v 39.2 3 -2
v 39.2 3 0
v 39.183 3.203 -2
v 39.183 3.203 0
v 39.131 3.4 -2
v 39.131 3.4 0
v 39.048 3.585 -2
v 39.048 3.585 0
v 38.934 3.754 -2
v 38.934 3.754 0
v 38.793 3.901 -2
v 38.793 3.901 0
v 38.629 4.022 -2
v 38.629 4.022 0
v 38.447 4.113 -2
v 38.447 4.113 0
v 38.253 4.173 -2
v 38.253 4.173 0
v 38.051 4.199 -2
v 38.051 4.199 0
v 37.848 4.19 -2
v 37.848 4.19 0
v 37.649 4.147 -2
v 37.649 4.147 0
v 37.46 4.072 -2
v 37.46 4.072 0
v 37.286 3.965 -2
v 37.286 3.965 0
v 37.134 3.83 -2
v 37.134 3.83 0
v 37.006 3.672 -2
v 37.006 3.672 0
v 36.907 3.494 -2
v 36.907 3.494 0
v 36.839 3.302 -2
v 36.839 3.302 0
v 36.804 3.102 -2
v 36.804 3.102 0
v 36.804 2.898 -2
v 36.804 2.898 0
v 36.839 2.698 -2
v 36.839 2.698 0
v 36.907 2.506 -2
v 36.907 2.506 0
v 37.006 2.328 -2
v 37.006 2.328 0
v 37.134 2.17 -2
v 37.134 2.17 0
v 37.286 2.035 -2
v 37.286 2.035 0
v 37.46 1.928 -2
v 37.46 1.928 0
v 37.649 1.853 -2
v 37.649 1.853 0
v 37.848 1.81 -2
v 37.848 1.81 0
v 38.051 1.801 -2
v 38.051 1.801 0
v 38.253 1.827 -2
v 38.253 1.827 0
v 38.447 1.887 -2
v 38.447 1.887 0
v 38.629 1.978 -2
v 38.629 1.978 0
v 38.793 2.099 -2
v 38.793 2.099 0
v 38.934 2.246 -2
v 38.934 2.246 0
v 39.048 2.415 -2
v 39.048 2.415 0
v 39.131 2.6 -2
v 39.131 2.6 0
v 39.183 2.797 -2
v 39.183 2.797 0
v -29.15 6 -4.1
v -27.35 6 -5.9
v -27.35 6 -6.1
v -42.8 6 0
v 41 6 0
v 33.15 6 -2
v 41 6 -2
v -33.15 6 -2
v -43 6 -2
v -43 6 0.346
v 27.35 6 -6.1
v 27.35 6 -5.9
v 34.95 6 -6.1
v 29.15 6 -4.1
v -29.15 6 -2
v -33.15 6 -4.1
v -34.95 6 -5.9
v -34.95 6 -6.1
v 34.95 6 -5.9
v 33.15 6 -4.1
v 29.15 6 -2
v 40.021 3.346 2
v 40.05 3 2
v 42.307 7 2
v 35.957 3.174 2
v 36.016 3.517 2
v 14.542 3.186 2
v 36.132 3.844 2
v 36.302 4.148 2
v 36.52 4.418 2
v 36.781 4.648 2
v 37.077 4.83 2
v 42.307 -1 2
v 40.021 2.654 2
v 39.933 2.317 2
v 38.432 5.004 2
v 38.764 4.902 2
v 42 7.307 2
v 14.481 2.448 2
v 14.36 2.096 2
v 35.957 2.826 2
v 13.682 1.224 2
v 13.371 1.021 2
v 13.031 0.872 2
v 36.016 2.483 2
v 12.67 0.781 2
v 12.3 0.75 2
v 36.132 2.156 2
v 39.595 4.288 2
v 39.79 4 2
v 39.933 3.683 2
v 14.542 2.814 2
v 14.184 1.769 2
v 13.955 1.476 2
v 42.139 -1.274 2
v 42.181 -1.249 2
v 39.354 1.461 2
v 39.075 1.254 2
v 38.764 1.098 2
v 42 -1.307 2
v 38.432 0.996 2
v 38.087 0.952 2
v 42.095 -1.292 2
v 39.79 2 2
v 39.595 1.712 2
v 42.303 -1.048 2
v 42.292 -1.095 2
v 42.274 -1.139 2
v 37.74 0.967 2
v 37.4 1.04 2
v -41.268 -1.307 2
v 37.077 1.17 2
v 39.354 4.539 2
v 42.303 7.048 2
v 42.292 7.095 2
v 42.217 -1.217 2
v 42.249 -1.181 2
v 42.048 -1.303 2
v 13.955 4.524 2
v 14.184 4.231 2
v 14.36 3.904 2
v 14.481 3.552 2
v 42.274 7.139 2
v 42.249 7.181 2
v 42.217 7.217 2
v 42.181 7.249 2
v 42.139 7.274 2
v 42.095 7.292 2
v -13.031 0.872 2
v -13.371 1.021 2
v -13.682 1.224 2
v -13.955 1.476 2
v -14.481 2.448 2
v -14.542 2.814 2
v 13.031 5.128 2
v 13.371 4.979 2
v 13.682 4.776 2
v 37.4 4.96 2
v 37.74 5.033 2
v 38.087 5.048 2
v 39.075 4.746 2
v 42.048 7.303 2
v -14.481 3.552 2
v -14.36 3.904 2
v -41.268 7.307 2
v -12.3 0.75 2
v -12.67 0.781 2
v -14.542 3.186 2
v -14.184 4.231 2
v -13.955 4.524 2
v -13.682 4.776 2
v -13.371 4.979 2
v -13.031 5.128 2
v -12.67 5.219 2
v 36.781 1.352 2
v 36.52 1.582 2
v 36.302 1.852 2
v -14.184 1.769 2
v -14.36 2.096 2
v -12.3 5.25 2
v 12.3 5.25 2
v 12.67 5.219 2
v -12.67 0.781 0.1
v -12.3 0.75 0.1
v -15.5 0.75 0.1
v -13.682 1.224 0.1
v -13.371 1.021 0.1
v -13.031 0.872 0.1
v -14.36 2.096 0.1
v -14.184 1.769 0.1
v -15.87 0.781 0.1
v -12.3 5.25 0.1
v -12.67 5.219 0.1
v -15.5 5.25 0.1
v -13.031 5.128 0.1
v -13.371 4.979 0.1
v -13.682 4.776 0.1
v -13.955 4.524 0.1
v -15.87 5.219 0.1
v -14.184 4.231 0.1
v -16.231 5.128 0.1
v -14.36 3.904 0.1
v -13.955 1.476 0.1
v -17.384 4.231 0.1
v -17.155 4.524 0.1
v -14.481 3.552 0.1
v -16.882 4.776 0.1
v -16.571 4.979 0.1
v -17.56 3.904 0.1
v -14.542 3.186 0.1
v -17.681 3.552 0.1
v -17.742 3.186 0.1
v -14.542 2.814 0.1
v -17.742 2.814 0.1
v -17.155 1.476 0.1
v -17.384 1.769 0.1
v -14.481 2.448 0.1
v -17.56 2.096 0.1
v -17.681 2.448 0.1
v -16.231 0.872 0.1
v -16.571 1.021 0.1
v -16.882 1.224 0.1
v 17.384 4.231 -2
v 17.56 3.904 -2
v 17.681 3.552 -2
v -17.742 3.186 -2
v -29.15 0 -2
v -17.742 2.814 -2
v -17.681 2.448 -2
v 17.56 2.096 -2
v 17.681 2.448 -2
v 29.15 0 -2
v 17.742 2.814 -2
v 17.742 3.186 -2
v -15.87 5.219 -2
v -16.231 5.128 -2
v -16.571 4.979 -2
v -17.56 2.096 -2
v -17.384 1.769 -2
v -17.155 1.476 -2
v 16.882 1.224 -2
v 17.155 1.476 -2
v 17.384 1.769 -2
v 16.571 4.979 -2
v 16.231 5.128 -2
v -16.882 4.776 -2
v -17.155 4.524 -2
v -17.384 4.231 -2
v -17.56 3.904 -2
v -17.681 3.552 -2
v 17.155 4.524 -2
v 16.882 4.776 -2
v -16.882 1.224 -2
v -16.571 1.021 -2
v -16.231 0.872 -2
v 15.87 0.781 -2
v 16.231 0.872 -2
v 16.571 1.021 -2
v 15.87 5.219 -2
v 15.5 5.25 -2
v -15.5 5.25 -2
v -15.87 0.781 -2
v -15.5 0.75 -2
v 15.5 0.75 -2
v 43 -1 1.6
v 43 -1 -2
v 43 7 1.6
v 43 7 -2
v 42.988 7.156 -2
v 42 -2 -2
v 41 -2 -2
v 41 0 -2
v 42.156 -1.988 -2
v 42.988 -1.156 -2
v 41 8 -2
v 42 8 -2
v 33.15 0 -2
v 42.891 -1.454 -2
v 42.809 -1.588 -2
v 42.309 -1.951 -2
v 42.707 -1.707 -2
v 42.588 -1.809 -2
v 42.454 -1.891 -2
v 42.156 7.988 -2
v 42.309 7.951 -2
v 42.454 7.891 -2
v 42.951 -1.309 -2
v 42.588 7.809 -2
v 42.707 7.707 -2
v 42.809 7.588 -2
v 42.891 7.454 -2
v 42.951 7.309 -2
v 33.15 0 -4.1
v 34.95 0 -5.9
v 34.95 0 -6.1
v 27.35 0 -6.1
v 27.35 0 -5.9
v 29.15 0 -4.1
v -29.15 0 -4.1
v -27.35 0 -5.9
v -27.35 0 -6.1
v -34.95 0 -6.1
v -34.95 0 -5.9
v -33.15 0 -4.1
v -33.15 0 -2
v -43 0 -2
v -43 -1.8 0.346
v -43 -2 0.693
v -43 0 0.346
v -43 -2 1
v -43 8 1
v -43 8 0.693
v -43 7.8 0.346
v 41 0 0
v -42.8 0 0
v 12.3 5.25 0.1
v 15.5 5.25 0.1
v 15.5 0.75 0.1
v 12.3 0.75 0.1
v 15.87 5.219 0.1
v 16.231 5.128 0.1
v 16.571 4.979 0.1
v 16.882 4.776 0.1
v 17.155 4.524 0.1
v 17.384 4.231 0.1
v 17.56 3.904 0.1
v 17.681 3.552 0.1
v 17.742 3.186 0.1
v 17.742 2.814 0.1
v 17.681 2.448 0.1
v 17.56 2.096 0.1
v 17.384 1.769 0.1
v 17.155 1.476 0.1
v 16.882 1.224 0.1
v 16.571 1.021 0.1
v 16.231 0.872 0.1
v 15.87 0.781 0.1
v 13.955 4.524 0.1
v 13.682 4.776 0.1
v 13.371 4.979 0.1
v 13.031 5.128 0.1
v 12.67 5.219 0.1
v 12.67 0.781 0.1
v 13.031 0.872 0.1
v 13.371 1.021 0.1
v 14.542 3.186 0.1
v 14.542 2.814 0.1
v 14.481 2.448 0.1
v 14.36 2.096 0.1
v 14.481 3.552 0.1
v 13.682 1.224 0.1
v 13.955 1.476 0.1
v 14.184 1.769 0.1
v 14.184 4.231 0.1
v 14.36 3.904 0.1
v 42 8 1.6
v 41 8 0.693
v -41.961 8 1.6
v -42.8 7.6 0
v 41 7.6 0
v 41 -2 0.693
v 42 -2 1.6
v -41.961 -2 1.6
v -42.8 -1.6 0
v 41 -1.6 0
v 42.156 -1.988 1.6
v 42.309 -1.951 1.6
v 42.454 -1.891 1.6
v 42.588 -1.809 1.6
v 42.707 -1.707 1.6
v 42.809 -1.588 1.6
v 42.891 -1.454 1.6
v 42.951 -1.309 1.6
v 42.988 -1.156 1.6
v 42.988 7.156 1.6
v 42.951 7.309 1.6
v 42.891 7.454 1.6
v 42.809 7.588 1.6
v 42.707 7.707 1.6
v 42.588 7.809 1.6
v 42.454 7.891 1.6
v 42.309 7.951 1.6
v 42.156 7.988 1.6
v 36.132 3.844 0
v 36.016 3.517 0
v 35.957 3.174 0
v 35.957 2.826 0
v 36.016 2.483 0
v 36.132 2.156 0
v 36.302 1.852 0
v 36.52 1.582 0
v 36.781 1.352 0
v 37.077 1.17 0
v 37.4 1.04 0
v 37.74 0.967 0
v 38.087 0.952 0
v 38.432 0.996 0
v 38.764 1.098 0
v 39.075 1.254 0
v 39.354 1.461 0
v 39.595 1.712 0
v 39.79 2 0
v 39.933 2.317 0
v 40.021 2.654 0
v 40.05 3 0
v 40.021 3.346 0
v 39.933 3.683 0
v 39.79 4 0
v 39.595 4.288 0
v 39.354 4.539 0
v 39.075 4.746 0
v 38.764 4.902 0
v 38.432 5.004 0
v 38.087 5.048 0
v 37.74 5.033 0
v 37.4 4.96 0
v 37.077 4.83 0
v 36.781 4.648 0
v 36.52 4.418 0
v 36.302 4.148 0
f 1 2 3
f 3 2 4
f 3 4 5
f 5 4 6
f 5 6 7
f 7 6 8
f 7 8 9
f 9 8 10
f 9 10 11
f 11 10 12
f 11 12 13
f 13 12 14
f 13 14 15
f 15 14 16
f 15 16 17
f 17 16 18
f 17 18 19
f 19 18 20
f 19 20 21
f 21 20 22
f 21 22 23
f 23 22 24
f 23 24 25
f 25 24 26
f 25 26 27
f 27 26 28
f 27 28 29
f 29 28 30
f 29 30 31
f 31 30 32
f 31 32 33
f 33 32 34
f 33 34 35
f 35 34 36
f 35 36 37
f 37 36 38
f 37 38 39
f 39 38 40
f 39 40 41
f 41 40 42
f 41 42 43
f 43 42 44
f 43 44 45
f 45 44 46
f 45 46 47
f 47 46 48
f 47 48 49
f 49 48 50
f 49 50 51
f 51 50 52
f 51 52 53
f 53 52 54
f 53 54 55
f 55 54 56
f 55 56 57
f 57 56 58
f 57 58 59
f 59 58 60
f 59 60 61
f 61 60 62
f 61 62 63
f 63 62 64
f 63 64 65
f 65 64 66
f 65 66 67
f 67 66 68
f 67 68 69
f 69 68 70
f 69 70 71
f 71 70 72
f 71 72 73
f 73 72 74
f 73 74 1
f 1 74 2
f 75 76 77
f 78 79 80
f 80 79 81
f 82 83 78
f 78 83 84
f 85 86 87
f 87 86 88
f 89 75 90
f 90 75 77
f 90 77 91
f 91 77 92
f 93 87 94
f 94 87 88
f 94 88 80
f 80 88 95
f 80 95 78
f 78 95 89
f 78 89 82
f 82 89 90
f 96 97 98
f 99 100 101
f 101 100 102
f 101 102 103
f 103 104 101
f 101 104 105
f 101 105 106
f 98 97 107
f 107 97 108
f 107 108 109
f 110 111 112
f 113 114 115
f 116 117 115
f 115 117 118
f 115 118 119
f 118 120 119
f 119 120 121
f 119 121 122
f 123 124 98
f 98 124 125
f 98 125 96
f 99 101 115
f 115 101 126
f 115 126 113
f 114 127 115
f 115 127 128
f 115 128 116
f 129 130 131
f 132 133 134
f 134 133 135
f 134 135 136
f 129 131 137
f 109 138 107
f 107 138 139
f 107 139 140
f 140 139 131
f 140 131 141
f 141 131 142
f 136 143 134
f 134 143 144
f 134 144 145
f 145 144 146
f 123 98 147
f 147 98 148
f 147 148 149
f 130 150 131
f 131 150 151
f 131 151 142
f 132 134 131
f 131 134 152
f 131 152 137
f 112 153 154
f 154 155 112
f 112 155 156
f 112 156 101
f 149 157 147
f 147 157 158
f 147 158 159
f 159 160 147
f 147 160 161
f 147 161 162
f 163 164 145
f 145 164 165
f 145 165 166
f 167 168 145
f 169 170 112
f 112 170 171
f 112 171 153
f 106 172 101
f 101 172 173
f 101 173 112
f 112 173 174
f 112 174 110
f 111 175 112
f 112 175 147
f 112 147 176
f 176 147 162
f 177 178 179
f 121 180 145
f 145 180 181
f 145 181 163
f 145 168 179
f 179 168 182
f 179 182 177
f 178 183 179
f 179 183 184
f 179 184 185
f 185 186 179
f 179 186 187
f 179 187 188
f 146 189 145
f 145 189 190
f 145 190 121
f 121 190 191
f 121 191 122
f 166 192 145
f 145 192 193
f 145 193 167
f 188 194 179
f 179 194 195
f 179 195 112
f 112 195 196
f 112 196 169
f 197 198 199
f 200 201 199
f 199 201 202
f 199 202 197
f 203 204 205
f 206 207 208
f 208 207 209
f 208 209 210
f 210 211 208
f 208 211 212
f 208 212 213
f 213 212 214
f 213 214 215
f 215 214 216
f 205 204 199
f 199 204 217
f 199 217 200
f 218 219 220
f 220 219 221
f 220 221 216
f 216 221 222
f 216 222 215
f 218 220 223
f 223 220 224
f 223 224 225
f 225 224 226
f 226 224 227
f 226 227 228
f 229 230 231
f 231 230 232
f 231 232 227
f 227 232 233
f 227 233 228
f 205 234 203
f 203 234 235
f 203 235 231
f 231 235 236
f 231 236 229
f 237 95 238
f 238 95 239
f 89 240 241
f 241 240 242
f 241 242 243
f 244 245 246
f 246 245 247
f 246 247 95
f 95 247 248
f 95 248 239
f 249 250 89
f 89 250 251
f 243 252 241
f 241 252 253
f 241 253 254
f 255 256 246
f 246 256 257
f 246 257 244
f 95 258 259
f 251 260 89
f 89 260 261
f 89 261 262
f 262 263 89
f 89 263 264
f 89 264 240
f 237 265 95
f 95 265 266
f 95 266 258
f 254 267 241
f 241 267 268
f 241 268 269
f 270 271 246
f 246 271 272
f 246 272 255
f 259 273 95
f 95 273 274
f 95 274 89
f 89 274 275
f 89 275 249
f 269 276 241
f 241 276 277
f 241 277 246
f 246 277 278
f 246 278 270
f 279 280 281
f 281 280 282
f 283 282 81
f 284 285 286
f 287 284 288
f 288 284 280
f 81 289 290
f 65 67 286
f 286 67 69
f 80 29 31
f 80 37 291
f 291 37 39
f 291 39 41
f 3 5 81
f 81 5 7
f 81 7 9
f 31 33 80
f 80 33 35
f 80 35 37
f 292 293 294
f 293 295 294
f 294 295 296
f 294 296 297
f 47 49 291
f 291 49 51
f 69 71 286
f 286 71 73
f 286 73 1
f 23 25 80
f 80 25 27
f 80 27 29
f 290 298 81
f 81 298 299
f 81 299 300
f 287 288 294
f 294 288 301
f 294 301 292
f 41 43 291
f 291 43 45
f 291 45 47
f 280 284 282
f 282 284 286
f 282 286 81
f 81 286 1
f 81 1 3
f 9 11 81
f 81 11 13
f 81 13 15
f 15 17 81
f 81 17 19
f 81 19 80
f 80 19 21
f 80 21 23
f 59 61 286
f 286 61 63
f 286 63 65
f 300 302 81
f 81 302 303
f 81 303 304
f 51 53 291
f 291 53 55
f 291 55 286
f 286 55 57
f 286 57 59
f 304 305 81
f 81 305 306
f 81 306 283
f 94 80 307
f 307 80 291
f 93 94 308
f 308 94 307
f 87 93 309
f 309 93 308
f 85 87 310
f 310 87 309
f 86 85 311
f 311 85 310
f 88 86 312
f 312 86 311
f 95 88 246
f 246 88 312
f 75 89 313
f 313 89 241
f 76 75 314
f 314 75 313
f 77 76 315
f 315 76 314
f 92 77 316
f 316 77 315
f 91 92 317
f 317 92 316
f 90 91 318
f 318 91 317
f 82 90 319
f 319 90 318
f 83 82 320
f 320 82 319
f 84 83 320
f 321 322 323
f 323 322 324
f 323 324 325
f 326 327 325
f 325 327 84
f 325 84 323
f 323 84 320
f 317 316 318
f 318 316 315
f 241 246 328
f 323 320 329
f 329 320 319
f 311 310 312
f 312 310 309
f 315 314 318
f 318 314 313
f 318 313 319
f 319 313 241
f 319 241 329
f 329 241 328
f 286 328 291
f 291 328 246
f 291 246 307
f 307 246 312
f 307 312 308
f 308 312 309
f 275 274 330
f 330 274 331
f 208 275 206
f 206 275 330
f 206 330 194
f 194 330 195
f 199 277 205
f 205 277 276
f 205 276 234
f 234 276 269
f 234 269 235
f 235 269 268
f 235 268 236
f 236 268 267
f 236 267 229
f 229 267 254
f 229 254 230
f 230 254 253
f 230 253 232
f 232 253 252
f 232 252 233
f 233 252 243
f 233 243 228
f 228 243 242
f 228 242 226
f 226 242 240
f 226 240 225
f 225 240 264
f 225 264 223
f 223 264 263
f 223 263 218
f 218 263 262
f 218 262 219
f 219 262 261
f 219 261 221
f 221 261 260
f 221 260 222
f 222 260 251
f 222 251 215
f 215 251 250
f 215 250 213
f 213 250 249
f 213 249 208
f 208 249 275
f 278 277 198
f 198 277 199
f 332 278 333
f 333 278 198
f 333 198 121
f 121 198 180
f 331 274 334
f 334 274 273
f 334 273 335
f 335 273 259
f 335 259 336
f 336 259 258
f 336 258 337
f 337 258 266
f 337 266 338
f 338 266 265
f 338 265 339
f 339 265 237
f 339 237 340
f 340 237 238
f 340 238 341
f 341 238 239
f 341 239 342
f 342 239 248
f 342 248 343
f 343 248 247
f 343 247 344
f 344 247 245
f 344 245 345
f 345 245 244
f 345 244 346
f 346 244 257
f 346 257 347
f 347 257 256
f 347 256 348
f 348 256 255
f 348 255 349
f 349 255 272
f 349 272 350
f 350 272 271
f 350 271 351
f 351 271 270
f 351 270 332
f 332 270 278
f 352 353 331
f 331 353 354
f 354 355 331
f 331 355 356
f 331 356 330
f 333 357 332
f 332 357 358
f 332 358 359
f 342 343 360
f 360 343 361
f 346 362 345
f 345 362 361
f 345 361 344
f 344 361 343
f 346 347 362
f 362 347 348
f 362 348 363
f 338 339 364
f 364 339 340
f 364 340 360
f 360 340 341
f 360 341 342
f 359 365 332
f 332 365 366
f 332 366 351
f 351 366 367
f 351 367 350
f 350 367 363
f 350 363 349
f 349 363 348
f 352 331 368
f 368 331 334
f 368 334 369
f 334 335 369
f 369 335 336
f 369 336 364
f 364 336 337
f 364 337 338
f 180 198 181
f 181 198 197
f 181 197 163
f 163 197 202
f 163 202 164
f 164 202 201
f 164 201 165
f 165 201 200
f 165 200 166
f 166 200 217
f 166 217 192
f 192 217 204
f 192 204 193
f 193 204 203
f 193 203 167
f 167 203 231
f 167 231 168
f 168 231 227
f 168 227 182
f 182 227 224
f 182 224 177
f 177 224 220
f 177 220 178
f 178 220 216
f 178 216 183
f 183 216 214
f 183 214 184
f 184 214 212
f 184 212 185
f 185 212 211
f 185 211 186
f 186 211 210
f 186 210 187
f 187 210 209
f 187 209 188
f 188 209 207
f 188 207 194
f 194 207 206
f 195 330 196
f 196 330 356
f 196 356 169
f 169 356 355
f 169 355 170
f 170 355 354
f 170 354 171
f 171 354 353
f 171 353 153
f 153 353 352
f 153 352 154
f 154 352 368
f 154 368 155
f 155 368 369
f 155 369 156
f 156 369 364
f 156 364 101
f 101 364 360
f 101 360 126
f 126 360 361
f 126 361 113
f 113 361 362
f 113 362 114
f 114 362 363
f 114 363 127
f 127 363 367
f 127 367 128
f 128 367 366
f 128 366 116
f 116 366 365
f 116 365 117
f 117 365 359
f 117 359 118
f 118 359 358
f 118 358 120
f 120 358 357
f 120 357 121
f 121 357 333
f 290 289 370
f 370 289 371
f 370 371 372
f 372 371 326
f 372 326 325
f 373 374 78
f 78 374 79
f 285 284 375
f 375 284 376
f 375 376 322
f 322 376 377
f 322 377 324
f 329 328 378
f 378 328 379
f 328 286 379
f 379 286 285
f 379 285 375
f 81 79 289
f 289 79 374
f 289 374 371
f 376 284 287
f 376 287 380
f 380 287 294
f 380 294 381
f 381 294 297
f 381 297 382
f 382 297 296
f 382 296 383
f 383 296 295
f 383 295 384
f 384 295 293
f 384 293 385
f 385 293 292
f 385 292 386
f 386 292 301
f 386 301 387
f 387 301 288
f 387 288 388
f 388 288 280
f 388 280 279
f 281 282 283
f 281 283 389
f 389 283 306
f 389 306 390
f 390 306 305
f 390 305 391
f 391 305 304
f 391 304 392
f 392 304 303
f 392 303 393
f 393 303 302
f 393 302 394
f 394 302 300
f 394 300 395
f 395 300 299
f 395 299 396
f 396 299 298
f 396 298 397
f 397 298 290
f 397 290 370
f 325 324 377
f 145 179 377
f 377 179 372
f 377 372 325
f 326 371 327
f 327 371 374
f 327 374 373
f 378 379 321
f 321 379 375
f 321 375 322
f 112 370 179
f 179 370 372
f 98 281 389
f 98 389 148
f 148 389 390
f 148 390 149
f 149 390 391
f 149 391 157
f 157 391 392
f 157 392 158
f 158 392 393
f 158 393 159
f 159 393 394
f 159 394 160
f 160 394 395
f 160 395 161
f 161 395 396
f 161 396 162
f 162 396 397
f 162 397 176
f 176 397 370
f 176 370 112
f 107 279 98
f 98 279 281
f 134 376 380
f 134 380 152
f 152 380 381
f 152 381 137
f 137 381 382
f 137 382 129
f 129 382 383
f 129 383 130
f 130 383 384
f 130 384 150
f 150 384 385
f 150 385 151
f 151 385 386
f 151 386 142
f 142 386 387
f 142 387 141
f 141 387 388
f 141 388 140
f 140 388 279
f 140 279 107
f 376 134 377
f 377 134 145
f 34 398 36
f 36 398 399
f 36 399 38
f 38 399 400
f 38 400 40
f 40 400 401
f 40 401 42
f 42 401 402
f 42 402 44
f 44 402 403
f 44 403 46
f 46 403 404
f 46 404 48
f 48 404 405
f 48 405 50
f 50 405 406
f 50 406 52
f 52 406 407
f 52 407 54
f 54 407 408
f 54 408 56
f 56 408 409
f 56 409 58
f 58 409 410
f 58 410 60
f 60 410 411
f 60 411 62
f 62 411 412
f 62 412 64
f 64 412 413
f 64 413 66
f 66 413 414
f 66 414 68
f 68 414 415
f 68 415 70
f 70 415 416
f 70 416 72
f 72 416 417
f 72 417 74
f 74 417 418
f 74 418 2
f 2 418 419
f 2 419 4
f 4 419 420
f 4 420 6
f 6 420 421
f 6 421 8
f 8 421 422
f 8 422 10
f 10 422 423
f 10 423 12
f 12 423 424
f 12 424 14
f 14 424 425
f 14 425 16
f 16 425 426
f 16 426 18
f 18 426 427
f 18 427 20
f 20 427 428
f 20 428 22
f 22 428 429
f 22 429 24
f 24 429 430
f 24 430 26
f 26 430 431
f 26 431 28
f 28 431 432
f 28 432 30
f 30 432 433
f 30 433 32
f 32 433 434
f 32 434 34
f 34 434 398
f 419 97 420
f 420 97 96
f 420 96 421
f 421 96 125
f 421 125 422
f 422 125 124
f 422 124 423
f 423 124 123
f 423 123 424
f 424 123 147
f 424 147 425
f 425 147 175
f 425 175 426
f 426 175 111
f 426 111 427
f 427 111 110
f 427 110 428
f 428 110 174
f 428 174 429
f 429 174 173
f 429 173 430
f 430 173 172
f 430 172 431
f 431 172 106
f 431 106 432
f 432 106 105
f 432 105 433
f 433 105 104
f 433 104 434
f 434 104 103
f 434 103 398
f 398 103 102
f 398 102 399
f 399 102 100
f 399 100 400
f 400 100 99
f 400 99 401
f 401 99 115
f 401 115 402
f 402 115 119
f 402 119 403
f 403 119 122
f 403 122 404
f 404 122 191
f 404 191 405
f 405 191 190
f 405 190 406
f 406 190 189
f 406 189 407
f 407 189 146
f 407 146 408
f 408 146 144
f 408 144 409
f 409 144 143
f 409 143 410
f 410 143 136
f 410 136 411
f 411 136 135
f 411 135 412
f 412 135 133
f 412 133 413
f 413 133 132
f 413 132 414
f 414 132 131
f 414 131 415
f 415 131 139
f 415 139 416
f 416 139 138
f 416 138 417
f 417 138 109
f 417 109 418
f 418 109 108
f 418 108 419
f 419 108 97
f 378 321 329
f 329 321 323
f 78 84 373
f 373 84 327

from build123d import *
from OCP.BRepFilletAPI import BRepFilletAPI_MakeChamfer

# Parameters (mm, degrees)
EXTRUDE_1_DEPTH     = 6
CUT_EXTRUDE_1_DEPTH = 2.1
CUT_EXTRUDE_2_DEPTH = 4
SKETCH_3_W          = 86
SKETCH_3_H          = 2
EXTRUDE_2_DEPTH     = 2
SKETCH_4_W          = 2
SKETCH_4_H          = 10
EXTRUDE_3_DEPTH     = 4
FILLET_1_R          = 1
CHAMFER_1_SIZE      = 1
CHAMFER_1_SIZE2     = 1.732050808
CHAMFER_2_SIZE      = 0.4
CHAMFER_2_SIZE2     = 0.692820323
SKETCH_5_R          = 1.2
CUT_EXTRUDE_3_DEPTH = 45.481569217
SKETCH_5_3_R        = 2.05
CUT_EXTRUDE_4_DEPTH = 2
CHAMFER_3_SIZE      = 0.2
CHAMFER_3_SIZE2     = 0.346410162


with BuildPart() as part:
    # 草图1 → 凸台-拉伸1 (new body)
    with BuildSketch(Plane(origin=(0, 0, 0), x_dir=(1, 0, 0), z_dir=(0, 1, 0))):
        Polygon((-43, 2), (-33.15, 2), (-33.15, 4.1), (-34.95, 5.9), (-34.95, 6.1), (-27.35, 6.1), (-27.35, 5.9), (-29.15, 4.1), (-29.15, 2), (29.15, 2), (29.15, 4.1), (27.35, 5.9), (27.35, 6.1), (34.95, 6.1), (34.95, 5.9), (33.15, 4.1), (33.15, 2), (43, 2), (43, -2), (-43, -2), align=None)
    extrude(amount=EXTRUDE_1_DEPTH)

    # 草图2 → 切除-拉伸1 (cut)
    with BuildSketch(Plane(origin=(0, 0, -2), x_dir=(-1, 0, 0), z_dir=(0, 0, -1))):
        with BuildLine():
            Line((-15.5, 5.25), (15.5, 5.25))
            ThreePointArc((15.5, 5.25), (17.75, 3), (15.5, 0.75))
            Line((15.5, 0.75), (-15.5, 0.75))
            ThreePointArc((-15.5, 0.75), (-17.75, 3), (-15.5, 5.25))
        make_face()
    extrude(amount=-CUT_EXTRUDE_1_DEPTH, mode=Mode.SUBTRACT)

    # 草图2<3> → 切除-拉伸2 (cut)
    with BuildSketch(Plane(origin=(0, 0, -2), x_dir=(-1, 0, 0), z_dir=(0, 0, -1))):
        with BuildLine():
            Line((-12.3, 5.25), (12.3, 5.25))
            ThreePointArc((12.3, 5.25), (14.55, 3), (12.3, 0.75))
            Line((12.3, 0.75), (-12.3, 0.75))
            ThreePointArc((-12.3, 0.75), (-14.55, 3), (-12.3, 5.25))
        make_face()
    extrude(amount=-CUT_EXTRUDE_2_DEPTH, mode=Mode.SUBTRACT)

    # 草图3 → 凸台-拉伸2 (add)
    with BuildSketch(Plane.XY.offset(2)):
        with Locations((0, 7)):
            Rectangle(SKETCH_3_W, SKETCH_3_H)
        with Locations((0, -1)):
            Rectangle(SKETCH_3_W, SKETCH_3_H)
    extrude(amount=-EXTRUDE_2_DEPTH)

    # 草图4 → 凸台-拉伸3 (add)
    with BuildSketch(Plane.XY.offset(2)):
        with Locations((42, 3)):
            Rectangle(SKETCH_4_W, SKETCH_4_H)
    extrude(amount=-EXTRUDE_3_DEPTH)

    # 圆角1
    fillet_1_edges = [part.edges().sort_by_distance(p)[0] for p in [
        (43, -2, 0),
        (43, 8, 0),
    ]]
    fillet(fillet_1_edges, radius=FILLET_1_R)

    # 倒角1
    chamfer_1_edges = [part.edges().sort_by_distance(p)[0] for p in [
        (-43, 3, 2),
    ]]
    chamfer_1_side = [part.faces().sort_by_distance(p)[0] for p in [
        (-43, 3, 0.25),
    ]]
    chamfer(chamfer_1_edges, length=CHAMFER_1_SIZE, length2=CHAMFER_1_SIZE2, reference=chamfer_1_side[0])

    # 倒角2: one chamfer whose edges measure the first distance from different faces: ONE call of the kernel's chamfer builder (chamfer() names one face for all edges)
    chamfer_2_edges_1 = [part.edges().sort_by_distance(p)[0] for p in [
        (-1, -2, 0),
    ]]
    chamfer_2_side_1 = [part.faces().sort_by_distance(p)[0] for p in [
        (-1, -1, 0),
    ]]
    chamfer_2_edges_2 = [part.edges().sort_by_distance(p)[0] for p in [
        (-1, 8, 0),
    ]]
    chamfer_2_side_2 = [part.faces().sort_by_distance(p)[0] for p in [
        (-1, 7, 0),
    ]]
    chamfer_2_edges_3 = [part.edges().sort_by_distance(p)[0] for p in [
        (43, 3, 2),
    ]]
    chamfer_2_side_3 = [part.faces().sort_by_distance(p)[0] for p in [
        (43, 3, 0),
    ]]
    chamfer_2_edges_4 = [part.edges().sort_by_distance(p)[0] for p in [
        (0.366025404, 8, 2),
    ]]
    chamfer_2_side_4 = [part.faces().sort_by_distance(p)[0] for p in [
        (0.202993546, 8, 0.973252826),
    ]]
    chamfer_2_edges_5 = [part.edges().sort_by_distance(p)[0] for p in [
        (42.707106781, 7.707106781, 2),
    ]]
    chamfer_2_side_5 = [part.faces().sort_by_distance(p)[0] for p in [
        (42.707106781, 7.707106781, 0),
    ]]
    chamfer_2_edges_6 = [part.edges().sort_by_distance(p)[0] for p in [
        (42.707106781, -1.707106781, 2),
    ]]
    chamfer_2_side_6 = [part.faces().sort_by_distance(p)[0] for p in [
        (42.707106781, -1.707106781, 0),
    ]]
    chamfer_2_edges_7 = [part.edges().sort_by_distance(p)[0] for p in [
        (0.366025404, -2, 2),
    ]]
    chamfer_2_side_7 = [part.faces().sort_by_distance(p)[0] for p in [
        (0.202993546, -2, 0.973252826),
    ]]
    chamfer_2 = BRepFilletAPI_MakeChamfer(part.part.solid().wrapped)
    for e in chamfer_2_edges_1:
        chamfer_2.Add(CHAMFER_2_SIZE, CHAMFER_2_SIZE2, e.wrapped, chamfer_2_side_1[0].wrapped)  # the first distance lies on this face
    for e in chamfer_2_edges_2:
        chamfer_2.Add(CHAMFER_2_SIZE, CHAMFER_2_SIZE2, e.wrapped, chamfer_2_side_2[0].wrapped)  # the first distance lies on this face
    for e in chamfer_2_edges_3:
        chamfer_2.Add(CHAMFER_2_SIZE, CHAMFER_2_SIZE2, e.wrapped, chamfer_2_side_3[0].wrapped)  # the first distance lies on this face
    for e in chamfer_2_edges_4:
        chamfer_2.Add(CHAMFER_2_SIZE, CHAMFER_2_SIZE2, e.wrapped, chamfer_2_side_4[0].wrapped)  # the first distance lies on this face
    for e in chamfer_2_edges_5:
        chamfer_2.Add(CHAMFER_2_SIZE, CHAMFER_2_SIZE2, e.wrapped, chamfer_2_side_5[0].wrapped)  # the first distance lies on this face
    for e in chamfer_2_edges_6:
        chamfer_2.Add(CHAMFER_2_SIZE, CHAMFER_2_SIZE2, e.wrapped, chamfer_2_side_6[0].wrapped)  # the first distance lies on this face
    for e in chamfer_2_edges_7:
        chamfer_2.Add(CHAMFER_2_SIZE, CHAMFER_2_SIZE2, e.wrapped, chamfer_2_side_7[0].wrapped)  # the first distance lies on this face
    add(Compound.cast(chamfer_2.Shape()), mode=Mode.REPLACE)

    # 草图5 → 切除-拉伸3 (cut, through all)
    with BuildSketch(Plane.XY.offset(2)):
        with Locations((38, 3)):
            Circle(SKETCH_5_R)
    extrude(amount=-CUT_EXTRUDE_3_DEPTH, mode=Mode.SUBTRACT)

    # 草图5<3> → 切除-拉伸4 (cut)
    with BuildSketch(Plane.XY.offset(2)):
        with Locations((38, 3)):
            Circle(SKETCH_5_3_R)
    extrude(amount=-CUT_EXTRUDE_4_DEPTH, mode=Mode.SUBTRACT)

    # 倒角3: one chamfer whose edges measure the first distance from different faces: ONE call of the kernel's chamfer builder (chamfer() names one face for all edges)
    chamfer_3_edges_1 = [part.edges().sort_by_distance(p)[0] for p in [
        (-43, -0.8, 0),
    ]]
    chamfer_3_side_1 = [part.faces().sort_by_distance(p)[0] for p in [
        (-1, -0.8, 0),
    ]]
    chamfer_3_edges_2 = [part.edges().sort_by_distance(p)[0] for p in [
        (-43, 6.8, 0),
    ]]
    chamfer_3_side_2 = [part.faces().sort_by_distance(p)[0] for p in [
        (-1, 6.8, 0),
    ]]
    chamfer_3 = BRepFilletAPI_MakeChamfer(part.part.solid().wrapped)
    for e in chamfer_3_edges_1:
        chamfer_3.Add(CHAMFER_3_SIZE, CHAMFER_3_SIZE2, e.wrapped, chamfer_3_side_1[0].wrapped)  # the first distance lies on this face
    for e in chamfer_3_edges_2:
        chamfer_3.Add(CHAMFER_3_SIZE, CHAMFER_3_SIZE2, e.wrapped, chamfer_3_side_2[0].wrapped)  # the first distance lies on this face
    add(Compound.cast(chamfer_3.Shape()), mode=Mode.REPLACE)


solid = part.part
